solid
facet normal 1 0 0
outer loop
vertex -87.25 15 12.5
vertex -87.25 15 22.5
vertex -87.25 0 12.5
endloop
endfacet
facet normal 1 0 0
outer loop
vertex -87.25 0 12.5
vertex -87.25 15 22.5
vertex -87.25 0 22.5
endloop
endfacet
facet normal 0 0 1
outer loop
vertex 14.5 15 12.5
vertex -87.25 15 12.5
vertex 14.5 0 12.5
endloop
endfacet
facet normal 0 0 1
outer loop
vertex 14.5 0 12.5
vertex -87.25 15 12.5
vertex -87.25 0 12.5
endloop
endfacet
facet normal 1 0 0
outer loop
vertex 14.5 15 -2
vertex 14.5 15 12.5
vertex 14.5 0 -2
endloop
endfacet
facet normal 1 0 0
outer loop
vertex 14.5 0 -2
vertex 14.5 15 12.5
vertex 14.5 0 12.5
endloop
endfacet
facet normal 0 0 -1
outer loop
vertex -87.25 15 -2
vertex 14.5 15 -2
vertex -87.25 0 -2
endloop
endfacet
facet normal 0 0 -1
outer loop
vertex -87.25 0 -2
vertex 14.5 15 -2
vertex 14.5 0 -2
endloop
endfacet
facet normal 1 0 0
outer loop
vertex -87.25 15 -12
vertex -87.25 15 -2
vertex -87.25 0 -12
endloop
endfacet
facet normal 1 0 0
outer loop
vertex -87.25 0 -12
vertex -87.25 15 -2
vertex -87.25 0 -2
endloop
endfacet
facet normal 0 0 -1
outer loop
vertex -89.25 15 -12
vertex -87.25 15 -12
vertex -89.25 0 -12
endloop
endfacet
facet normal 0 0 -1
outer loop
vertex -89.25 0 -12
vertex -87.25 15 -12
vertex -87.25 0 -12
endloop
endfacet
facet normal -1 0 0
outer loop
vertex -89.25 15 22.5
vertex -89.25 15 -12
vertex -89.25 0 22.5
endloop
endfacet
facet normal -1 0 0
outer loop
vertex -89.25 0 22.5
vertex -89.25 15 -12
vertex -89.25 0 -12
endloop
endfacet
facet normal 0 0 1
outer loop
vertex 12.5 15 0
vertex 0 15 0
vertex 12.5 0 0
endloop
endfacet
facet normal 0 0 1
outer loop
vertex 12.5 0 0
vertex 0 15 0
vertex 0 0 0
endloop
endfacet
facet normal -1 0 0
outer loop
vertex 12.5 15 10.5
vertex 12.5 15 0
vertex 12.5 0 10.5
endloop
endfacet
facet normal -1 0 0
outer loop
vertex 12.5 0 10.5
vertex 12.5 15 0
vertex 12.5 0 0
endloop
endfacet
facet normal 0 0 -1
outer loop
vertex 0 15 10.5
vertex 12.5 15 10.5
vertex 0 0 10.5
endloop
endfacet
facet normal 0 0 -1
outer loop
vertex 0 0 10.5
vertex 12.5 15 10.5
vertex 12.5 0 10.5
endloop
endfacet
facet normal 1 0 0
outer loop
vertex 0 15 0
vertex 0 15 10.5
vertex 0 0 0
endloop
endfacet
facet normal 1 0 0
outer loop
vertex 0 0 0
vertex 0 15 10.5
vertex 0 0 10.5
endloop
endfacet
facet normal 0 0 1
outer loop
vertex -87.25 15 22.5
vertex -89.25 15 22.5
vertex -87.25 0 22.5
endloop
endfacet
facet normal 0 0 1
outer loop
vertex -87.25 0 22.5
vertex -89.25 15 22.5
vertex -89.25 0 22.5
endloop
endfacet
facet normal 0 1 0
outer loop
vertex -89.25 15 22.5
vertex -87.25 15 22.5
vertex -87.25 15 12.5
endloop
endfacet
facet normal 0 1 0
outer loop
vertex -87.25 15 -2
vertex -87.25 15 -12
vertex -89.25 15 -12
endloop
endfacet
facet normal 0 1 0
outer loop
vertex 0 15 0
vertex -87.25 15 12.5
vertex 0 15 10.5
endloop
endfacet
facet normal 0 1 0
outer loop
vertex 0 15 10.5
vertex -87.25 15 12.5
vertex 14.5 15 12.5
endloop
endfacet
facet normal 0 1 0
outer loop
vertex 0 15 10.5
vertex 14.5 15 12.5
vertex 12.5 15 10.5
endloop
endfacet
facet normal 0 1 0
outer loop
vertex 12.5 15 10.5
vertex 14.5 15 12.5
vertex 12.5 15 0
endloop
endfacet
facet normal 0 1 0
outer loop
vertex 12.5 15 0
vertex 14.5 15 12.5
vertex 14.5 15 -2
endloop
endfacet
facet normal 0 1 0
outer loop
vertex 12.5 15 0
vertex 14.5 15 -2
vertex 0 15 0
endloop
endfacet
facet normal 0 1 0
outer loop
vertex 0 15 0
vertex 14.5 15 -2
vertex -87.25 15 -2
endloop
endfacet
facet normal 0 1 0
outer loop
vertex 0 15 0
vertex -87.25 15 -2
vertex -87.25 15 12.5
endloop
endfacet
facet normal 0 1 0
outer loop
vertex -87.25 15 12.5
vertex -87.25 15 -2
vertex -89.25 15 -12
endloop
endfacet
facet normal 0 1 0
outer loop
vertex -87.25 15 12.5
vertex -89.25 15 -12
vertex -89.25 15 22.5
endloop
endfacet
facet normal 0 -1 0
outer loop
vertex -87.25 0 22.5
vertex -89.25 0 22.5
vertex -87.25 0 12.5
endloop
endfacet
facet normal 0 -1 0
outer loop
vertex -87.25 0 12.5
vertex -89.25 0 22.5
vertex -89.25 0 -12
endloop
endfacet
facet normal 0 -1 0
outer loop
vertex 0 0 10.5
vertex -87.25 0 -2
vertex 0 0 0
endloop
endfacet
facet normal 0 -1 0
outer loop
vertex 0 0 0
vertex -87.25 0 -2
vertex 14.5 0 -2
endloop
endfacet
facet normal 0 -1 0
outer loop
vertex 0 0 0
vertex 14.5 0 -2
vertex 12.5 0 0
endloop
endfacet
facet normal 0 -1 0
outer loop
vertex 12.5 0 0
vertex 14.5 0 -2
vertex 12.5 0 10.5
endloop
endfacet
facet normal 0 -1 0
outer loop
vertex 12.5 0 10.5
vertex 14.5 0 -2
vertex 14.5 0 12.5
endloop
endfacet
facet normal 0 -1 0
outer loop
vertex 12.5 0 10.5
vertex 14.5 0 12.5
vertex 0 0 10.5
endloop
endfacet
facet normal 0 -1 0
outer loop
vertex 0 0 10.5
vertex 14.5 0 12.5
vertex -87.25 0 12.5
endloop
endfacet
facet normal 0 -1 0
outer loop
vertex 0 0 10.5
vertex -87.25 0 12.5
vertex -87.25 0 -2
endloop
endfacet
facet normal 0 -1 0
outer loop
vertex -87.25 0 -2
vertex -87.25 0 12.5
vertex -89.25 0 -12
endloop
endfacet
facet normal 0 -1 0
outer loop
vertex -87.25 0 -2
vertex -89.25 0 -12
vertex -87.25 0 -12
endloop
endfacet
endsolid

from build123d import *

# Parameters (mm, degrees)
SKETCH1_W           = 12.5
SKETCH1_H           = 10.5
BOSS_EXTRUDE2_DEPTH = 15


with BuildPart() as part:
    # Sketch1 → Boss-Extrude2 (new body)
    with BuildSketch(Plane(origin=(0, 0, 0), x_dir=(1, 0, 0), z_dir=(0, 1, 0))):
        Polygon((-87.25, -22.5), (-87.25, -12.5), (-2, -12.5), (14.5, -12.5), (14.5, 2), (-2, 2), (-87.25, 2), (-87.25, 12), (-89.25, 12), (-89.25, -22.5), align=None)
        with Locations((6.25, -5.25)):
            Rectangle(SKETCH1_W, SKETCH1_H, mode=Mode.SUBTRACT)
    extrude(amount=BOSS_EXTRUDE2_DEPTH)


solid = part.part
